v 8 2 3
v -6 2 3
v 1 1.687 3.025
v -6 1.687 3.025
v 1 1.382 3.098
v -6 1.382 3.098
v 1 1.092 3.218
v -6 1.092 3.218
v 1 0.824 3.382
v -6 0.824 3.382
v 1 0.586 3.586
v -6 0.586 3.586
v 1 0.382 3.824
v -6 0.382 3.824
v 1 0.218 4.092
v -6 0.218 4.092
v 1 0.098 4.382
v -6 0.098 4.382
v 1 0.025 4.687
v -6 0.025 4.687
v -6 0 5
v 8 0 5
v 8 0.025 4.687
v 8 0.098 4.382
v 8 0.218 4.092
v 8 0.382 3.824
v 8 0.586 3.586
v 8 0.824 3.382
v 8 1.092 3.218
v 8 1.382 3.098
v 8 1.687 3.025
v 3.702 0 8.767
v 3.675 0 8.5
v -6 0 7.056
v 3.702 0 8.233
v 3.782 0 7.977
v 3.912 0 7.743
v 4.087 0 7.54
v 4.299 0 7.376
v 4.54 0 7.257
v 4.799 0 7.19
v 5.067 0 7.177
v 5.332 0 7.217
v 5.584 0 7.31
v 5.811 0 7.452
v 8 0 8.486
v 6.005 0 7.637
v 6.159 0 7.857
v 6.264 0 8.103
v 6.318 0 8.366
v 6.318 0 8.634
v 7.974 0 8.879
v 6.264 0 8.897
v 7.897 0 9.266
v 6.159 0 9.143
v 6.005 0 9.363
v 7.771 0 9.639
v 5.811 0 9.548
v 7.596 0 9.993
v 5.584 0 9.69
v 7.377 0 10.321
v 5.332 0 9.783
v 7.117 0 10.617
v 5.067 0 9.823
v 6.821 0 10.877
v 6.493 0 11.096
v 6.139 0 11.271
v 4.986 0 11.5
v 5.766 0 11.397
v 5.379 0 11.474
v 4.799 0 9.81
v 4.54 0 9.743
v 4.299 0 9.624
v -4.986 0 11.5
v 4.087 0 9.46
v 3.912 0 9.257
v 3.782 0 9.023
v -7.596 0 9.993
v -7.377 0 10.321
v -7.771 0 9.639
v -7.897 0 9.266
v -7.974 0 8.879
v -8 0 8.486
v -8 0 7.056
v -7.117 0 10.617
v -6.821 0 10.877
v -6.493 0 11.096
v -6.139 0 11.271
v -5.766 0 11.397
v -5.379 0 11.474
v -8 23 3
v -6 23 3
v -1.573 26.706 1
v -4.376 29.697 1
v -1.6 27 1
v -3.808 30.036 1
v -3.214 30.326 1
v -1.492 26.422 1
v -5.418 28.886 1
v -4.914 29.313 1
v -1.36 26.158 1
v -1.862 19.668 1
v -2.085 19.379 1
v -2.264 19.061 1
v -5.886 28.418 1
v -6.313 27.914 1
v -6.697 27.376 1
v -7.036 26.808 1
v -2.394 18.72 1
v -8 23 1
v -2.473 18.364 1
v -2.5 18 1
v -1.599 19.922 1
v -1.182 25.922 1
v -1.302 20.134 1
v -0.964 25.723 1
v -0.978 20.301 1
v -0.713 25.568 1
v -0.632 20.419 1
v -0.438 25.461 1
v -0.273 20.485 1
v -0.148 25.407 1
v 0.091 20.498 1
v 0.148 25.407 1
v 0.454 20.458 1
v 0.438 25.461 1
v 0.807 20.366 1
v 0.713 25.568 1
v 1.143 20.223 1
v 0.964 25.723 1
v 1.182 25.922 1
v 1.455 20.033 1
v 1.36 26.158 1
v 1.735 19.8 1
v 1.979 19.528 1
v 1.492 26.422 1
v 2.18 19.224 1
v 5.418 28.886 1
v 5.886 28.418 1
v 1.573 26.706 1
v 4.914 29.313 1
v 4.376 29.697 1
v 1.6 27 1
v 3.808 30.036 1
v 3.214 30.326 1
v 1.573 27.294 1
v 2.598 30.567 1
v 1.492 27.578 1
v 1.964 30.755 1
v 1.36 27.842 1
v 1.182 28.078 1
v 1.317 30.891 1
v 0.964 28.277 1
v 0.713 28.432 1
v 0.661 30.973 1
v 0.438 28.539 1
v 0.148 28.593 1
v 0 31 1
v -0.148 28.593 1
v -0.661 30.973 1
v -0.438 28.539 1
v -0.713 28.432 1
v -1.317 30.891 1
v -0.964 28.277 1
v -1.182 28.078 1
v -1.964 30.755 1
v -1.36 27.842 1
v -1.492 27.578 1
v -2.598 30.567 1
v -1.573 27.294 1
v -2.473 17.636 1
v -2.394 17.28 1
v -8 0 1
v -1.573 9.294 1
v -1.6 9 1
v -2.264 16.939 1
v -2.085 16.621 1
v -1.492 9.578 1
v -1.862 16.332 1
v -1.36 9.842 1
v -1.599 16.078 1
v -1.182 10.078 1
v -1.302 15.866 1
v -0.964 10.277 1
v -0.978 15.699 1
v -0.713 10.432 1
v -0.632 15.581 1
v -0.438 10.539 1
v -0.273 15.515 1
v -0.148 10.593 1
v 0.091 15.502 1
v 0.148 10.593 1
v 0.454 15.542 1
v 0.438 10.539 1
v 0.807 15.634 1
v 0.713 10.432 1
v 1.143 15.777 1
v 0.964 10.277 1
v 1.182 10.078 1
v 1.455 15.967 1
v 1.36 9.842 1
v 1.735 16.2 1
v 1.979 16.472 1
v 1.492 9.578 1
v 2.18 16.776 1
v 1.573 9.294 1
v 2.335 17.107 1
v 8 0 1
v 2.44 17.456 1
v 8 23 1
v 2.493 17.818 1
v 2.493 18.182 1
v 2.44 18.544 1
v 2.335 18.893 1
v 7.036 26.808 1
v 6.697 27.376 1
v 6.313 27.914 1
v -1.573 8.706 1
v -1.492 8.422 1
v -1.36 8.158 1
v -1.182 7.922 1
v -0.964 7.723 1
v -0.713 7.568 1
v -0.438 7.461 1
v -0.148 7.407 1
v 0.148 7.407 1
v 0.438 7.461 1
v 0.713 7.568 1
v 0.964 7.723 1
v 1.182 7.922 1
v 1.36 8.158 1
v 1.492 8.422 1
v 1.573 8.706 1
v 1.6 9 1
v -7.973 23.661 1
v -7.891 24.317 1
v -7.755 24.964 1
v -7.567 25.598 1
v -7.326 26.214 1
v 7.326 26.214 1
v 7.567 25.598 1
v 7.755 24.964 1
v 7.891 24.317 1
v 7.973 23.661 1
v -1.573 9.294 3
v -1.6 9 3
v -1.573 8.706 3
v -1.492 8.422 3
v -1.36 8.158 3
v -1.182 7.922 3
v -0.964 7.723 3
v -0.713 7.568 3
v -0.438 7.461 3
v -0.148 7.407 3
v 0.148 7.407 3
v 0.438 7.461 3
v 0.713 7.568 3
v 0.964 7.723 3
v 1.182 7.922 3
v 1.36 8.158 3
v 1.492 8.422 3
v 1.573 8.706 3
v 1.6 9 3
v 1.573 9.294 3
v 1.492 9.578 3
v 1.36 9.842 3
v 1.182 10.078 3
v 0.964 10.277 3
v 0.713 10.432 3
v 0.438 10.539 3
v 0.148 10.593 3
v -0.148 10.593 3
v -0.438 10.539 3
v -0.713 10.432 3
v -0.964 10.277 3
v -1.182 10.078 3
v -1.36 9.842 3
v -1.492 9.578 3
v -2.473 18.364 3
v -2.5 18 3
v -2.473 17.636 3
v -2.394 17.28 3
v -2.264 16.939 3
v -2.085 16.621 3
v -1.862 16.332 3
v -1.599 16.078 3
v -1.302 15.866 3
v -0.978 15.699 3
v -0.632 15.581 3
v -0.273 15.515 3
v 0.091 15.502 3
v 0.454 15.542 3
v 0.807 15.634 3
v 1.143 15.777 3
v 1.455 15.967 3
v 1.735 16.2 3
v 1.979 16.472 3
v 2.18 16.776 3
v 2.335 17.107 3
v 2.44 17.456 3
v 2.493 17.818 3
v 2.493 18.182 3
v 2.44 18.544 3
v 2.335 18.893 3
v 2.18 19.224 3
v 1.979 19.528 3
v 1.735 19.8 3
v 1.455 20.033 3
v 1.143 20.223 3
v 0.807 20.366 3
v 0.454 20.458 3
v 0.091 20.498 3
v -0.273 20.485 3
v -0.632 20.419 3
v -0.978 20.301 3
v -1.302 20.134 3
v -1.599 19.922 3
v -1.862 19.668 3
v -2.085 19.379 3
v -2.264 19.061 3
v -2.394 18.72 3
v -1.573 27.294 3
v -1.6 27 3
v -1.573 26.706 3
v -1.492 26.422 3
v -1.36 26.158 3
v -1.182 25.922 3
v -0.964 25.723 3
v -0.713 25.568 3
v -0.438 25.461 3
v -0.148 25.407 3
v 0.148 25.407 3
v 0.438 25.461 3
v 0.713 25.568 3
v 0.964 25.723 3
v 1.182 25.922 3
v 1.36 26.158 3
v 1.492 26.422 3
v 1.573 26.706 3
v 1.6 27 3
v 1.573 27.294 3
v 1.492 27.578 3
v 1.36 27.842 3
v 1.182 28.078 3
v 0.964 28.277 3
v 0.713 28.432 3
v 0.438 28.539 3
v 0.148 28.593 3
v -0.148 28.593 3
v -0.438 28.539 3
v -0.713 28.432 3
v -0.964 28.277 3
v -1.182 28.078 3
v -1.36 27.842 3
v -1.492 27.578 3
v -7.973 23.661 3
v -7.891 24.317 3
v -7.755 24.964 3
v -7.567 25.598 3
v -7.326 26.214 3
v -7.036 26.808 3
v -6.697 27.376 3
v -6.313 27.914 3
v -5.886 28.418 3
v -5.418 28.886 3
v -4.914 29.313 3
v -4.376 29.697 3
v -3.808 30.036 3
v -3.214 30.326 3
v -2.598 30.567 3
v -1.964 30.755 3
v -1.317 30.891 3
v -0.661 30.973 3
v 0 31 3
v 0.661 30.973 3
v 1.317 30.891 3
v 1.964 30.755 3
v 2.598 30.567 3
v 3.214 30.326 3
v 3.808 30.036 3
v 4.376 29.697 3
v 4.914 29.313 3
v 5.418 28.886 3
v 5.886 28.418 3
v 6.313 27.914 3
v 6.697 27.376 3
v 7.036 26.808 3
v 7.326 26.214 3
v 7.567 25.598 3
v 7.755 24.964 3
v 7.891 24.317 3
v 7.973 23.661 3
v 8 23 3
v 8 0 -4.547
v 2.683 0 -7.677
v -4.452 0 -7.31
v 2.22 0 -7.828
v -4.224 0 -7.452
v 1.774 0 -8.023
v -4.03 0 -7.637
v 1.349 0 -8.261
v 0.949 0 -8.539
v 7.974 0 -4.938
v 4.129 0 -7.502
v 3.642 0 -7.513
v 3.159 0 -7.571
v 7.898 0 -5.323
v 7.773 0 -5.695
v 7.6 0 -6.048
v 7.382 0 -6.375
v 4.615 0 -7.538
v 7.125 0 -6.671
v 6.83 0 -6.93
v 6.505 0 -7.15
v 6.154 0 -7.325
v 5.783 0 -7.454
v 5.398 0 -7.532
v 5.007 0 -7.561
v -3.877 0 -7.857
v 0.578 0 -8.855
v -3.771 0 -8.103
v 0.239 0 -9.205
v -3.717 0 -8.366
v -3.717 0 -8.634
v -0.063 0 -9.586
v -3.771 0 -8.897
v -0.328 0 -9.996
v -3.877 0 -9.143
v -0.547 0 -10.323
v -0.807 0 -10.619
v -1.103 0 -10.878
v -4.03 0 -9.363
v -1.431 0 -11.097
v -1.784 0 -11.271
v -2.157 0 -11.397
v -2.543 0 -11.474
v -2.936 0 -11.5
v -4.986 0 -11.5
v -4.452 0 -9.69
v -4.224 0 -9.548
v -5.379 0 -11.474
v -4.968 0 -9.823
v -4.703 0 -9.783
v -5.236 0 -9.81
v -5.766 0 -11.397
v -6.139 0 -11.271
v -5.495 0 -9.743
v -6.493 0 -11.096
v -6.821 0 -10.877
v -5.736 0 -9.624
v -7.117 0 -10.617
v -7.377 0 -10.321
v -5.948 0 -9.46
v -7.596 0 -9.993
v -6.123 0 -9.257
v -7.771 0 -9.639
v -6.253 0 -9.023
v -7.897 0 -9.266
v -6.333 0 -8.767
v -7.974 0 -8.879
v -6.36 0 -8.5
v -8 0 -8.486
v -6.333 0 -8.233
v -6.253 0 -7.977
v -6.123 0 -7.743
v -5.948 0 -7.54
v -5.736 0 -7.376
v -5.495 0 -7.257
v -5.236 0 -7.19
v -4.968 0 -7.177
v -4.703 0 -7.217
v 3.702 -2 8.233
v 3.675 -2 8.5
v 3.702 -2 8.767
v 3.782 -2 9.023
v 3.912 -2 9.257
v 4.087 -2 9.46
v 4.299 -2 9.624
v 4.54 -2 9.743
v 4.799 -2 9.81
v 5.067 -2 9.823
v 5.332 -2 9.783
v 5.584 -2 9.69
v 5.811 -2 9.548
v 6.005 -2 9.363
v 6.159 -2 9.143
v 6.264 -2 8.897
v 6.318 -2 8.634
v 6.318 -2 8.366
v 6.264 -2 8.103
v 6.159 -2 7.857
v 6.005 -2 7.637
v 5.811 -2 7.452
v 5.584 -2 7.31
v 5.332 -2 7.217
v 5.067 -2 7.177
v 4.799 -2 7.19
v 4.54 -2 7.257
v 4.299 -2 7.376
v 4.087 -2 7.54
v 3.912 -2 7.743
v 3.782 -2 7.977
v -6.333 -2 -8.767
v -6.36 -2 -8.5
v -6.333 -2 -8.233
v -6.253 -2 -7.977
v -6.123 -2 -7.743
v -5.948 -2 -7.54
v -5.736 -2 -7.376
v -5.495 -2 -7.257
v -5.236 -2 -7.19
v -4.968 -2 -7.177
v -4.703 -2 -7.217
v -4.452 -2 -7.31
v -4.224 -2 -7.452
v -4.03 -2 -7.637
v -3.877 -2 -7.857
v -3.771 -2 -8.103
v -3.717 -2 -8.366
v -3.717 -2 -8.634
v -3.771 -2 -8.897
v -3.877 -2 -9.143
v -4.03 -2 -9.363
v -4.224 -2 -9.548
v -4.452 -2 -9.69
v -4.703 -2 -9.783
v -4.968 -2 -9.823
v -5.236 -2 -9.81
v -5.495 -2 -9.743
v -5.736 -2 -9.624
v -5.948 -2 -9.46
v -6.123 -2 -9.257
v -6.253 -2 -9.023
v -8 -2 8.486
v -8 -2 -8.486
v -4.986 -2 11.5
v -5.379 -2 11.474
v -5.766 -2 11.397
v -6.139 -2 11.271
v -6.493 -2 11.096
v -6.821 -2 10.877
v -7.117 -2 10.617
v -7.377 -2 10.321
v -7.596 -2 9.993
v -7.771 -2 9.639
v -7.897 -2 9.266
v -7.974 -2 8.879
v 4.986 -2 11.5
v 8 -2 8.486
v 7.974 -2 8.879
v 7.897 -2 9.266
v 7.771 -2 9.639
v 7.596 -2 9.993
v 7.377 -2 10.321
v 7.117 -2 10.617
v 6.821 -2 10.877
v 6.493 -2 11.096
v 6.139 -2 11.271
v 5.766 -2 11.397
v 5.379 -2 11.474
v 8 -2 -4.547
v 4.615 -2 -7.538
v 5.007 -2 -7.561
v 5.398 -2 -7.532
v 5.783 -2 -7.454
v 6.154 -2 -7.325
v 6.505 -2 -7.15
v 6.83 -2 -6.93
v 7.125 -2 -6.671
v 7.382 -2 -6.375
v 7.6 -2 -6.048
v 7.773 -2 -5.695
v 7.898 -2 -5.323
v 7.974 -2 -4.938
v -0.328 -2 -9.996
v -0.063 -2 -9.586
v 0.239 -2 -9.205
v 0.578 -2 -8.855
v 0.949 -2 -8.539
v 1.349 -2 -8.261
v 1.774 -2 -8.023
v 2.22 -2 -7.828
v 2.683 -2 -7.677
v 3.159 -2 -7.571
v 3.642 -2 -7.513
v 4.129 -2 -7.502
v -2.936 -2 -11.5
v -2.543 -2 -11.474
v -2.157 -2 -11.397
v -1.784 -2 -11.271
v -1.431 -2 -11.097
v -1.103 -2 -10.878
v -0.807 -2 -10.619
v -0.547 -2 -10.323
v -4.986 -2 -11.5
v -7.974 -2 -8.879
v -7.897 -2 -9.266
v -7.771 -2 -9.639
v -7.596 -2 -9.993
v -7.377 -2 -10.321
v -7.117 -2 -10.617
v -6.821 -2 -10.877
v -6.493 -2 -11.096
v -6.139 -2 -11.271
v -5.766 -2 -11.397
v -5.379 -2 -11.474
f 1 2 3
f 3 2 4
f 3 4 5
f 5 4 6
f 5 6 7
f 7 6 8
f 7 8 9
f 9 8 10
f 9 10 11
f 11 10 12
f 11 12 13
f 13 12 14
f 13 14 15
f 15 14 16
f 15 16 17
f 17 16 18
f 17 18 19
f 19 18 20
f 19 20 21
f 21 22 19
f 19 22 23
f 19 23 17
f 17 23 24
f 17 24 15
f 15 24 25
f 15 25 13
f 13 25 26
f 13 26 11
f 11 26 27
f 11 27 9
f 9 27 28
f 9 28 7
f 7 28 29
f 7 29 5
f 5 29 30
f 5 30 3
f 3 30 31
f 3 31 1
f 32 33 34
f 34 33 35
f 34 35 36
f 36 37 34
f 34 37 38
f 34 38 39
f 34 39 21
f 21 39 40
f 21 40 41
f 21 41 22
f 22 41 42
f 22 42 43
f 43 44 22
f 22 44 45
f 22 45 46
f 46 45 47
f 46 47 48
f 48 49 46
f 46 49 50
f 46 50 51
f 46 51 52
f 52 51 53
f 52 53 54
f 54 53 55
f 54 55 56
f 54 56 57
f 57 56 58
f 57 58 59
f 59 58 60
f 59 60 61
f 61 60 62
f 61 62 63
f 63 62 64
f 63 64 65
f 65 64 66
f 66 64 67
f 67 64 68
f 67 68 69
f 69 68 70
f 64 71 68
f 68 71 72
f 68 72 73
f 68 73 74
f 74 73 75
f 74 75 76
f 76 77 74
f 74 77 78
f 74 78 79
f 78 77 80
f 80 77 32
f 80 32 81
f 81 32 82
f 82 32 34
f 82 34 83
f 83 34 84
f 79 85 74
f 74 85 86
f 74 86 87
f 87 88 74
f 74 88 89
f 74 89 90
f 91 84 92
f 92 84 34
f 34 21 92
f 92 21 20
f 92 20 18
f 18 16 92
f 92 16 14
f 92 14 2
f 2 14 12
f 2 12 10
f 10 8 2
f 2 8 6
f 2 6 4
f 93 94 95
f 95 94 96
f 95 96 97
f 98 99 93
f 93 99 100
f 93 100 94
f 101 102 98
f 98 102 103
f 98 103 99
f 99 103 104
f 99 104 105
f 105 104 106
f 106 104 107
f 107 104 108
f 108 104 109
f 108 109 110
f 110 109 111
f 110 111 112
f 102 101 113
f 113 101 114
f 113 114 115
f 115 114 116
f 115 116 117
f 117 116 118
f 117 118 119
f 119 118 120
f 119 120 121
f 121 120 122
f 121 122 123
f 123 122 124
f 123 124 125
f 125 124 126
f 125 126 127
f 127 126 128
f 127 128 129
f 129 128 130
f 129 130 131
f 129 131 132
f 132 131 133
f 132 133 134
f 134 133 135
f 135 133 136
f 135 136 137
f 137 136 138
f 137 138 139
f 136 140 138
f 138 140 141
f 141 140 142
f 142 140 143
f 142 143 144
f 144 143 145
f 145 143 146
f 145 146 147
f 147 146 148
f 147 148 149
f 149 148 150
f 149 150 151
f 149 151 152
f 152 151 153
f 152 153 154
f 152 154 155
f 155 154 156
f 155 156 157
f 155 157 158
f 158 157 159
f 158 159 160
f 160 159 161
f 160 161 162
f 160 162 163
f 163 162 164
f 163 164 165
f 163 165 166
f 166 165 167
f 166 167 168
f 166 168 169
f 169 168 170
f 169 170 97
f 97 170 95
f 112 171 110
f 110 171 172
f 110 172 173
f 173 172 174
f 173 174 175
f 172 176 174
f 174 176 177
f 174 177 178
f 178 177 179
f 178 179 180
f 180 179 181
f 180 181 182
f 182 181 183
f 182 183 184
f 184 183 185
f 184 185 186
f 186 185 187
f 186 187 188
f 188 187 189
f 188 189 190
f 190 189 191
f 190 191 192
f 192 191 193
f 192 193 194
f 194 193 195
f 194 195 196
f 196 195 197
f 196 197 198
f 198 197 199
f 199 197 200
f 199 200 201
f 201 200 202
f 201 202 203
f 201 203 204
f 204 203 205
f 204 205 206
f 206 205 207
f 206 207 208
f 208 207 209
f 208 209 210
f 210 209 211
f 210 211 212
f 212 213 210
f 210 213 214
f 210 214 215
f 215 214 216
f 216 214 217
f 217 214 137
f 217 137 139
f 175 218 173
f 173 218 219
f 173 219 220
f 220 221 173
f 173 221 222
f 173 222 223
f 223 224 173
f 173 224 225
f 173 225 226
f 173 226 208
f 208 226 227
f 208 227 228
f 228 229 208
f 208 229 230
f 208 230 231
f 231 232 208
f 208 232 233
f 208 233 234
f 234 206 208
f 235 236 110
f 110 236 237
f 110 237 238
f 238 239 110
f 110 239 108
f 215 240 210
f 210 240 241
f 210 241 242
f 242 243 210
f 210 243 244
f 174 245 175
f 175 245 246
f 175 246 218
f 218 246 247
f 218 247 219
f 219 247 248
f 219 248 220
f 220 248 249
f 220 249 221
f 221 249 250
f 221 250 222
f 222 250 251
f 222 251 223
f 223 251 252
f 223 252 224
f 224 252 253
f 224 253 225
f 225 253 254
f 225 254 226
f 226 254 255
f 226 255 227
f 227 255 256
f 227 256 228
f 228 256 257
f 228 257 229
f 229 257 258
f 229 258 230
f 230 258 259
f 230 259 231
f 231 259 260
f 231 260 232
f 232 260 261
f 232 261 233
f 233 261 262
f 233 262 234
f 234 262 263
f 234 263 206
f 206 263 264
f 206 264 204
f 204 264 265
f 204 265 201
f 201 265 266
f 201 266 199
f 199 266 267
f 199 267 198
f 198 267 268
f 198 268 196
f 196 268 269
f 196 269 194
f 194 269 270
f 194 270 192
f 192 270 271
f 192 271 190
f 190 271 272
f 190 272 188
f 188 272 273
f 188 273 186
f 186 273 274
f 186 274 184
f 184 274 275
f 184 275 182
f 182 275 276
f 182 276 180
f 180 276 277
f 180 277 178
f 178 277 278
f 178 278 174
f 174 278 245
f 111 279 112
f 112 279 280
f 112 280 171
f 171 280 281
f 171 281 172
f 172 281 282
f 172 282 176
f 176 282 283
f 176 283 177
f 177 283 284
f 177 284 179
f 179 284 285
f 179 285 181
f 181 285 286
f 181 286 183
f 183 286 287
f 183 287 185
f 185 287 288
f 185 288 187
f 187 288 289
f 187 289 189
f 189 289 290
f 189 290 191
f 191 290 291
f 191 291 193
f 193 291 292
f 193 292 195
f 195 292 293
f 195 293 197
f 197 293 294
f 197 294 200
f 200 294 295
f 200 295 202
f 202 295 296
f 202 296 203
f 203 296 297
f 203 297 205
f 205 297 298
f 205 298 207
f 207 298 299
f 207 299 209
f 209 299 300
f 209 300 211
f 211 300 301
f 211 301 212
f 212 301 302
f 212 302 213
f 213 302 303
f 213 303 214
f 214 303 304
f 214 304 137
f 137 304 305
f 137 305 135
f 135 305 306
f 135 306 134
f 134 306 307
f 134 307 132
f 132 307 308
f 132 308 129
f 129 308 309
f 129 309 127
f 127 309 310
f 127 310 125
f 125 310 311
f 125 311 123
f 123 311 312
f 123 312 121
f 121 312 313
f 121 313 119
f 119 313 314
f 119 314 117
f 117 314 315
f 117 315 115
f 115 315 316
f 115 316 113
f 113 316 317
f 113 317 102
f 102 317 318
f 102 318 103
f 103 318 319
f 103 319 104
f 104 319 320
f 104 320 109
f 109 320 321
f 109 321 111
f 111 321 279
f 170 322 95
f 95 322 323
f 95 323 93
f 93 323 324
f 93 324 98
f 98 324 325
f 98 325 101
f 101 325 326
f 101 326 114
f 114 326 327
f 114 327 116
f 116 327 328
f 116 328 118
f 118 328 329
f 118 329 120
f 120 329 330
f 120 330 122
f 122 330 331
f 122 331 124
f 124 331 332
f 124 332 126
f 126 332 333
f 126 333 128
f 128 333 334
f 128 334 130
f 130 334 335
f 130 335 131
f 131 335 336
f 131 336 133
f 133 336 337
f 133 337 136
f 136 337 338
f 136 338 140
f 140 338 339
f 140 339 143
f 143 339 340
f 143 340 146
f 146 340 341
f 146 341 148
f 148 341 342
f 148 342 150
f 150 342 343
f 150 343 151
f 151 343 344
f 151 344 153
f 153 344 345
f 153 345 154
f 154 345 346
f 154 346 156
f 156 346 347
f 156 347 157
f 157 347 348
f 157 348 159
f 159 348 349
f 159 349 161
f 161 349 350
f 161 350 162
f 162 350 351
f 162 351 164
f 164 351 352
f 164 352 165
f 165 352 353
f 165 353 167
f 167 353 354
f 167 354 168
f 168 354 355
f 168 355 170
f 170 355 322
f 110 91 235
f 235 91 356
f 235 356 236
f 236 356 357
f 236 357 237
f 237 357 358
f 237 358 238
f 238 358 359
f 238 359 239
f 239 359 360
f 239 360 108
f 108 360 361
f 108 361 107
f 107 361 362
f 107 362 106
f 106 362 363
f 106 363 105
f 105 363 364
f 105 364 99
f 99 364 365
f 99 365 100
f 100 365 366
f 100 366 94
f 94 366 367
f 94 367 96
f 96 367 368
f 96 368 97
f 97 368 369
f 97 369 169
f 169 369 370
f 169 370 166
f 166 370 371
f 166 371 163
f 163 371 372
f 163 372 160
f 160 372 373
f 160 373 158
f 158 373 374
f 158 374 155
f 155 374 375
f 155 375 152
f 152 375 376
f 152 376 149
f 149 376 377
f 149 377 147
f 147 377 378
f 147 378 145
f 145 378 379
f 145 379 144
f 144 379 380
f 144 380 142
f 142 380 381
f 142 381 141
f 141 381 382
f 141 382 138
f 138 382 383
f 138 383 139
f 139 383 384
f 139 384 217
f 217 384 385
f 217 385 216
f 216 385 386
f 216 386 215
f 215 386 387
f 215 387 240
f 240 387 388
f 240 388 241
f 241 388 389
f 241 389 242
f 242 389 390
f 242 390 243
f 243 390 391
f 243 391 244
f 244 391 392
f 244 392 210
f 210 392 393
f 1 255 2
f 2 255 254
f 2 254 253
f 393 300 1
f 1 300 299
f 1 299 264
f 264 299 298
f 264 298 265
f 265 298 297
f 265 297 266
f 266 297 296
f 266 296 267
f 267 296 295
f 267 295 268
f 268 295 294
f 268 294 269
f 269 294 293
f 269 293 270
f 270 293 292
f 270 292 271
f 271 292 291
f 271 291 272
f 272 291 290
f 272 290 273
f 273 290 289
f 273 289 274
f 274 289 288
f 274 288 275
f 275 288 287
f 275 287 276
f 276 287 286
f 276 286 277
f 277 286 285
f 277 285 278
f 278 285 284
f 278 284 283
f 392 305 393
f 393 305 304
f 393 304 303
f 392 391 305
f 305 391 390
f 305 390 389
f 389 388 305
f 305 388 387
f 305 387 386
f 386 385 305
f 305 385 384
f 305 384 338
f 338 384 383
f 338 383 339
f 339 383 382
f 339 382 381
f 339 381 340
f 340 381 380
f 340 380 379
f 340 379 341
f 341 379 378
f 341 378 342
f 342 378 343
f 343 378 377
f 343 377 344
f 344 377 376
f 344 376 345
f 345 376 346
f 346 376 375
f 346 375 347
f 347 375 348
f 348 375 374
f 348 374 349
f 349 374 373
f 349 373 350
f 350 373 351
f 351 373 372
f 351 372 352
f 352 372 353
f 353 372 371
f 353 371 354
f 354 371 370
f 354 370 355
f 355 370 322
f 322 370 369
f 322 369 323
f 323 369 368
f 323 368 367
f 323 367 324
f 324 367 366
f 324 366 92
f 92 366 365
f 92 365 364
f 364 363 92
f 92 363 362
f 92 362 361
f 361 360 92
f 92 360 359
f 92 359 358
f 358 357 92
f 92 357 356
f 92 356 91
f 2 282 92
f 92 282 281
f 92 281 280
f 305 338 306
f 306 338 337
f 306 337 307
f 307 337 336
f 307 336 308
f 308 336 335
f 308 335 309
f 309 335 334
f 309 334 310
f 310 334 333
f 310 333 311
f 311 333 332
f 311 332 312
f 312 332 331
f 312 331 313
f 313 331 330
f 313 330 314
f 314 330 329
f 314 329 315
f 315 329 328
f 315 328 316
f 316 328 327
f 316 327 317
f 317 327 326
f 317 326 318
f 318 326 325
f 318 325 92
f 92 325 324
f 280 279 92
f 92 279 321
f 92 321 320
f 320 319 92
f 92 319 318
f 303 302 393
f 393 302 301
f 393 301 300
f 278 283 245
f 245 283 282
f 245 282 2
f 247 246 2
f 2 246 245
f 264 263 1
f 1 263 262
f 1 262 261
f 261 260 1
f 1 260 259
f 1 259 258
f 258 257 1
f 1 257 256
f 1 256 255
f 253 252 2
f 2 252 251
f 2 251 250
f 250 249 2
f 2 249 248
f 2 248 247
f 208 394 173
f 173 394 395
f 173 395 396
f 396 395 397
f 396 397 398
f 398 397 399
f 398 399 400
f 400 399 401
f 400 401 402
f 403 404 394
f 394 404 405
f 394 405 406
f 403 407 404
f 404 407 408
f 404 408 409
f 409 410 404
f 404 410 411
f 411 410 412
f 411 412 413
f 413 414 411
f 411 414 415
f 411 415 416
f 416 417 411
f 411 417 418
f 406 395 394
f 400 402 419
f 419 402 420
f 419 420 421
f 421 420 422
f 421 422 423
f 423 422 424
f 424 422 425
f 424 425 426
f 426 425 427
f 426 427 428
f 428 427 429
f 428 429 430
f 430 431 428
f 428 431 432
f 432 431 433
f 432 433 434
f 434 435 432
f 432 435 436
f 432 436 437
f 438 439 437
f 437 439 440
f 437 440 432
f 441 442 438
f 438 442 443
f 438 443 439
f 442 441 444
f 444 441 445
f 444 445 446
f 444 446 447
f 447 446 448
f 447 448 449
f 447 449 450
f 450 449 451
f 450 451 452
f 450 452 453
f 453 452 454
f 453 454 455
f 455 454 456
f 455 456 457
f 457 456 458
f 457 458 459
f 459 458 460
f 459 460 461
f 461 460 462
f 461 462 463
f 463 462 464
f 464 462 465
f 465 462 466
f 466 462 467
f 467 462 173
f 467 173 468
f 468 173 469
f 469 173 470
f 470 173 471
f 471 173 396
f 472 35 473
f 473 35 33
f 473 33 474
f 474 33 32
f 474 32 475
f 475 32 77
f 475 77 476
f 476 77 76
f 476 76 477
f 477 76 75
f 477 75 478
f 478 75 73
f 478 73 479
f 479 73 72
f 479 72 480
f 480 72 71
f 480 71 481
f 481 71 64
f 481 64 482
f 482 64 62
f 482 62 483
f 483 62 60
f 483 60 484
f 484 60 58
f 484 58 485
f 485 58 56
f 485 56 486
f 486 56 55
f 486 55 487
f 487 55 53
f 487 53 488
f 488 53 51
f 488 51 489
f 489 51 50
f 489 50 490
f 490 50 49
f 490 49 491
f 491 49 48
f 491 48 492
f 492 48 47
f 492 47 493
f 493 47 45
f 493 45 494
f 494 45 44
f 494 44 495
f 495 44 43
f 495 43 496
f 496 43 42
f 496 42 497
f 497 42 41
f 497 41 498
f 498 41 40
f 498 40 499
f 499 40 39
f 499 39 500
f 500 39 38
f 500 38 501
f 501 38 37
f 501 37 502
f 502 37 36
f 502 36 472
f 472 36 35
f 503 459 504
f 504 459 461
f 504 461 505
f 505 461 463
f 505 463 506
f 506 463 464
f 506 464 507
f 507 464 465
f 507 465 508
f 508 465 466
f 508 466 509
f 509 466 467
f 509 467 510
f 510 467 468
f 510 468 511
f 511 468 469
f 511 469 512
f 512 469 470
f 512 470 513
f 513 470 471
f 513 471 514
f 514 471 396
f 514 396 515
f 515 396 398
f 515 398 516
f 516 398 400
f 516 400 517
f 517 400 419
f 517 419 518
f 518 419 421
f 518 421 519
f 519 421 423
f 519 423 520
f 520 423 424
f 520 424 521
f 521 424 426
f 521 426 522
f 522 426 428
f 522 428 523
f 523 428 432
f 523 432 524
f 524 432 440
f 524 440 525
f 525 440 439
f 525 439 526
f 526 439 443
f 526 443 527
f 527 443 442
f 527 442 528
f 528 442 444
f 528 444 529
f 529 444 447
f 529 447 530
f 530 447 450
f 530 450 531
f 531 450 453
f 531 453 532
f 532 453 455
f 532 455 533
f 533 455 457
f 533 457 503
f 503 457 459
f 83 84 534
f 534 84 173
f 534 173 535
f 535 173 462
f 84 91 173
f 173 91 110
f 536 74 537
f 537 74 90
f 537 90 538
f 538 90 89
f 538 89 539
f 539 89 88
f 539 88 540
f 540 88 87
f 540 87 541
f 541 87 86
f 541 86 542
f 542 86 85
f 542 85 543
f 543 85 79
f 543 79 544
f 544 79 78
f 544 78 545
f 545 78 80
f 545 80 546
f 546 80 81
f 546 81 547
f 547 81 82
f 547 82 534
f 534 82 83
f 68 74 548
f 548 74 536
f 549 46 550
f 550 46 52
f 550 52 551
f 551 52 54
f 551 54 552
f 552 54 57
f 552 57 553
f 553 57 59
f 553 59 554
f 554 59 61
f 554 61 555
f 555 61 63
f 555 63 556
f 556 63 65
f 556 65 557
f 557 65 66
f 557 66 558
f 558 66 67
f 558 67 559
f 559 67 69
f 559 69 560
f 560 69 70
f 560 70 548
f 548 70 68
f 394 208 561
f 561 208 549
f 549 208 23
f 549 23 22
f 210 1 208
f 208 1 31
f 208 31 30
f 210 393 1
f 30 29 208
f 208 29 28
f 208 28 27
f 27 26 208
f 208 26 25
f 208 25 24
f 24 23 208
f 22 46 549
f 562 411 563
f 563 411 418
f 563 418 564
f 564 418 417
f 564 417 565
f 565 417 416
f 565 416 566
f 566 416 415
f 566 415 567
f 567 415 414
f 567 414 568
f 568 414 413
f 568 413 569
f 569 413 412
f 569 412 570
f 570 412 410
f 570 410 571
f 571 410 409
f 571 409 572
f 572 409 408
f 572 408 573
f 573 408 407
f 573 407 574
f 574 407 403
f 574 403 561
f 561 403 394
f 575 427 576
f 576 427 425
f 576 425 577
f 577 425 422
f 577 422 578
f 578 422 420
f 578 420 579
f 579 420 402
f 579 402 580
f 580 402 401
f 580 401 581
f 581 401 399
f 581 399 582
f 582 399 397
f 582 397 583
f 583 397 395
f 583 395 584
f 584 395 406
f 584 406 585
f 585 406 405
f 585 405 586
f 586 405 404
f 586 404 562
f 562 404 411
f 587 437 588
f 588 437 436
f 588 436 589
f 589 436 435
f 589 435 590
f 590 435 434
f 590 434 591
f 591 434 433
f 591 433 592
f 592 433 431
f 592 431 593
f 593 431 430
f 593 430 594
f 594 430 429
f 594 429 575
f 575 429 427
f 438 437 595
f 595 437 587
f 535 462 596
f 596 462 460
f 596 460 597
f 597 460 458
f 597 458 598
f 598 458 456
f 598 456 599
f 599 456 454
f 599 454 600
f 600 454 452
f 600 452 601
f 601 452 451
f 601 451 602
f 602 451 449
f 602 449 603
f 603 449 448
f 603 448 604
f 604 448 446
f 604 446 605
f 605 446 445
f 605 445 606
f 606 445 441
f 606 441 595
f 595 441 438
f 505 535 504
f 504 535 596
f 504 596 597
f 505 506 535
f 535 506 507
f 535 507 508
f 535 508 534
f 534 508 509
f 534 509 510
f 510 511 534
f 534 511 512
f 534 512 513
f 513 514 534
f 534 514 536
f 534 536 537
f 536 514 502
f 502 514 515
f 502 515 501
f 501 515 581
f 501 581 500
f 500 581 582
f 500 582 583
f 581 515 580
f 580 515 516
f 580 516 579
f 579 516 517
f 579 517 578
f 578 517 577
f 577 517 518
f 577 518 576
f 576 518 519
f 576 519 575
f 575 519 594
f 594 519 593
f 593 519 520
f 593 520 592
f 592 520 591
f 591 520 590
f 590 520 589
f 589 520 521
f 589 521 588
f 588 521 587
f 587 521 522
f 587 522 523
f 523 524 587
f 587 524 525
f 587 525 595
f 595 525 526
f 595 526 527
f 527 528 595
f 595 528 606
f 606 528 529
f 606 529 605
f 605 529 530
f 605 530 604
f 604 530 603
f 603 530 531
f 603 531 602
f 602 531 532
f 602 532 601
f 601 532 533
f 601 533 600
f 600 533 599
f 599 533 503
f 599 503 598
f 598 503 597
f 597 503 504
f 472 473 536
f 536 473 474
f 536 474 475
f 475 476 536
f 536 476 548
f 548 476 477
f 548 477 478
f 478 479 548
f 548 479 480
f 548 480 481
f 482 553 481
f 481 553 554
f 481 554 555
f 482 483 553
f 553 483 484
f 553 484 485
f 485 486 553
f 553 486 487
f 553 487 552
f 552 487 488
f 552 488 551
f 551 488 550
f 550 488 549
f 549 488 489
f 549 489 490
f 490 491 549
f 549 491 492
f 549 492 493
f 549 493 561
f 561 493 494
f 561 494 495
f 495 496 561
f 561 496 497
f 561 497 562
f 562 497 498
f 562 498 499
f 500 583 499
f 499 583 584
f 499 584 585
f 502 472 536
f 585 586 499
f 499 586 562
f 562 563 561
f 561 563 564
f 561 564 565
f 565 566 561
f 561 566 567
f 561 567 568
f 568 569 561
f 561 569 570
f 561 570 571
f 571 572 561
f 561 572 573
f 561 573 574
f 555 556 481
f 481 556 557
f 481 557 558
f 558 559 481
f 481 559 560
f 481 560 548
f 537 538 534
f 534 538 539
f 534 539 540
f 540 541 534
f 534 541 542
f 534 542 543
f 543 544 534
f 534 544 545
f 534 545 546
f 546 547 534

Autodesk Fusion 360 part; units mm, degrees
sketch "Sketch1" plane through (0, 0, 0) normal (0, 1, 0) x (1, 0, 0)
  line L0 (-4.9858, 11.5) -> (-2.9364, 11.5)
  line L1 (8, 4.5467) -> (8, -8.4858)
  line L2 (4.9858, -11.5) -> (-4.9858, -11.5)
  line L3 (-8, -8.4858) -> (-8, 8.4858)
  line L4 (-8, 11.5) -> (8, -11.5) construction
  line L5 (8, 11.5) -> (-8, -11.5) construction
  circle A0 centre (-5.0352, 8.5) radius 1.325
  arc A1 (-0.3276, 9.9956) -> (4.6151, 7.538) centre (4, 12.5) ccw
  arc A2 (-4.9858, 11.5) -> (-8, 8.4858) centre (-4.9858, 8.4858) ccw
  arc A3 (-0.3276, 9.9956) -> (-2.9364, 11.5) centre (-2.9364, 8.4858) ccw
  arc A4 (8, 4.5467) -> (4.6151, 7.538) centre (4.9858, 4.5467) ccw
  arc A5 (4.9858, -11.5) -> (8, -8.4858) centre (4.9858, -8.4858) ccw
  arc A6 (-8, -8.4858) -> (-4.9858, -11.5) centre (-4.9858, -8.4858) ccw
  circle A7 centre (5, -8.5) radius 1.325
  dimension "d74" = 10
  dimension "d75" = 12
  dimension "d76" = 2.65
  dimension "d77" = 3
  dimension "d79" = 4
  dimension "d81" = 2.65
  dimension "d82" = 3
  dimension "d83" = 3
  dimension "d84" = 16
  dimension "d85" = 23
extrude "Extrude1" add sketch "Sketch1" against normal blind 2
ref_plane "WorkPlane1" through (0, 0, 2) normal (0, 0, 1) x (1, 0, 0)
sketch "Sketch14" plane through (0, 0, 2) normal (0, 0, 1) x (1, 0, 0)
  line L0 (-8, 0) -> (8, 0)
  circle A0 centre (0, 18) radius 2.5
  circle A1 centre (0, 27) radius 1.6
  arc A2 (8, 23) -> (0, 31) centre (0, 23) ccw
  line L1 (-8, 23) -> (-8, 0)
  arc A3 (0, 31) -> (-8, 23) centre (0, 23) ccw
  line L2 (8, 0) -> (8, 23)
  circle A4 centre (0, 9) radius 1.6
  point P0 (-8, 31)
  dimension "d64" = 16
  dimension "d65" = 31
  dimension "d66" = 3.2
  dimension "d67" = 3.2
  dimension "d68" = 18
  dimension "d69" = 5
  dimension "d70" = 9
  dimension "d71" = 8
extrude "Extrude8" add sketch "Sketch14" along normal mid plane 2
sketch "Sketch16" plane through (-8, 0, 0) normal (-1, 0, 0) x (0, 0, 1)
  line L0 (8.4858, 0) -> (3, 0)
  line L1 (3, 0) -> (3, 23)
  line L2 (3, 23) -> (1, 23)
  line L3 (1, 23) -> (1, 0)
  line L4 (1, 0) -> (-8.4858, 0)
  line L5 (-8.4858, 0) -> (-8.4858, -2)
  line L6 (-8.4858, -2) -> (8.4858, -2)
  line L7 (8.4858, -2) -> (8.4858, 0)
  line L8 (3, 23) -> (7.0555, 0)
  line L9 (3, 23) -> (26.3548, 23) construction
  dimension "d86" = 80
extrude "Extrude9" add sketch "Sketch16" against normal blind 2 contours L0 L1 L8
fillet "Fillet3" radius 2 1 edges at (1, 0, 3)
equation "d65 = 26 mm + 5 mm"
equation "d71 = ( 16 / 2 ) * 1 mm"
equation "d72 = ( 2 / 2 ) * 1 mm"
